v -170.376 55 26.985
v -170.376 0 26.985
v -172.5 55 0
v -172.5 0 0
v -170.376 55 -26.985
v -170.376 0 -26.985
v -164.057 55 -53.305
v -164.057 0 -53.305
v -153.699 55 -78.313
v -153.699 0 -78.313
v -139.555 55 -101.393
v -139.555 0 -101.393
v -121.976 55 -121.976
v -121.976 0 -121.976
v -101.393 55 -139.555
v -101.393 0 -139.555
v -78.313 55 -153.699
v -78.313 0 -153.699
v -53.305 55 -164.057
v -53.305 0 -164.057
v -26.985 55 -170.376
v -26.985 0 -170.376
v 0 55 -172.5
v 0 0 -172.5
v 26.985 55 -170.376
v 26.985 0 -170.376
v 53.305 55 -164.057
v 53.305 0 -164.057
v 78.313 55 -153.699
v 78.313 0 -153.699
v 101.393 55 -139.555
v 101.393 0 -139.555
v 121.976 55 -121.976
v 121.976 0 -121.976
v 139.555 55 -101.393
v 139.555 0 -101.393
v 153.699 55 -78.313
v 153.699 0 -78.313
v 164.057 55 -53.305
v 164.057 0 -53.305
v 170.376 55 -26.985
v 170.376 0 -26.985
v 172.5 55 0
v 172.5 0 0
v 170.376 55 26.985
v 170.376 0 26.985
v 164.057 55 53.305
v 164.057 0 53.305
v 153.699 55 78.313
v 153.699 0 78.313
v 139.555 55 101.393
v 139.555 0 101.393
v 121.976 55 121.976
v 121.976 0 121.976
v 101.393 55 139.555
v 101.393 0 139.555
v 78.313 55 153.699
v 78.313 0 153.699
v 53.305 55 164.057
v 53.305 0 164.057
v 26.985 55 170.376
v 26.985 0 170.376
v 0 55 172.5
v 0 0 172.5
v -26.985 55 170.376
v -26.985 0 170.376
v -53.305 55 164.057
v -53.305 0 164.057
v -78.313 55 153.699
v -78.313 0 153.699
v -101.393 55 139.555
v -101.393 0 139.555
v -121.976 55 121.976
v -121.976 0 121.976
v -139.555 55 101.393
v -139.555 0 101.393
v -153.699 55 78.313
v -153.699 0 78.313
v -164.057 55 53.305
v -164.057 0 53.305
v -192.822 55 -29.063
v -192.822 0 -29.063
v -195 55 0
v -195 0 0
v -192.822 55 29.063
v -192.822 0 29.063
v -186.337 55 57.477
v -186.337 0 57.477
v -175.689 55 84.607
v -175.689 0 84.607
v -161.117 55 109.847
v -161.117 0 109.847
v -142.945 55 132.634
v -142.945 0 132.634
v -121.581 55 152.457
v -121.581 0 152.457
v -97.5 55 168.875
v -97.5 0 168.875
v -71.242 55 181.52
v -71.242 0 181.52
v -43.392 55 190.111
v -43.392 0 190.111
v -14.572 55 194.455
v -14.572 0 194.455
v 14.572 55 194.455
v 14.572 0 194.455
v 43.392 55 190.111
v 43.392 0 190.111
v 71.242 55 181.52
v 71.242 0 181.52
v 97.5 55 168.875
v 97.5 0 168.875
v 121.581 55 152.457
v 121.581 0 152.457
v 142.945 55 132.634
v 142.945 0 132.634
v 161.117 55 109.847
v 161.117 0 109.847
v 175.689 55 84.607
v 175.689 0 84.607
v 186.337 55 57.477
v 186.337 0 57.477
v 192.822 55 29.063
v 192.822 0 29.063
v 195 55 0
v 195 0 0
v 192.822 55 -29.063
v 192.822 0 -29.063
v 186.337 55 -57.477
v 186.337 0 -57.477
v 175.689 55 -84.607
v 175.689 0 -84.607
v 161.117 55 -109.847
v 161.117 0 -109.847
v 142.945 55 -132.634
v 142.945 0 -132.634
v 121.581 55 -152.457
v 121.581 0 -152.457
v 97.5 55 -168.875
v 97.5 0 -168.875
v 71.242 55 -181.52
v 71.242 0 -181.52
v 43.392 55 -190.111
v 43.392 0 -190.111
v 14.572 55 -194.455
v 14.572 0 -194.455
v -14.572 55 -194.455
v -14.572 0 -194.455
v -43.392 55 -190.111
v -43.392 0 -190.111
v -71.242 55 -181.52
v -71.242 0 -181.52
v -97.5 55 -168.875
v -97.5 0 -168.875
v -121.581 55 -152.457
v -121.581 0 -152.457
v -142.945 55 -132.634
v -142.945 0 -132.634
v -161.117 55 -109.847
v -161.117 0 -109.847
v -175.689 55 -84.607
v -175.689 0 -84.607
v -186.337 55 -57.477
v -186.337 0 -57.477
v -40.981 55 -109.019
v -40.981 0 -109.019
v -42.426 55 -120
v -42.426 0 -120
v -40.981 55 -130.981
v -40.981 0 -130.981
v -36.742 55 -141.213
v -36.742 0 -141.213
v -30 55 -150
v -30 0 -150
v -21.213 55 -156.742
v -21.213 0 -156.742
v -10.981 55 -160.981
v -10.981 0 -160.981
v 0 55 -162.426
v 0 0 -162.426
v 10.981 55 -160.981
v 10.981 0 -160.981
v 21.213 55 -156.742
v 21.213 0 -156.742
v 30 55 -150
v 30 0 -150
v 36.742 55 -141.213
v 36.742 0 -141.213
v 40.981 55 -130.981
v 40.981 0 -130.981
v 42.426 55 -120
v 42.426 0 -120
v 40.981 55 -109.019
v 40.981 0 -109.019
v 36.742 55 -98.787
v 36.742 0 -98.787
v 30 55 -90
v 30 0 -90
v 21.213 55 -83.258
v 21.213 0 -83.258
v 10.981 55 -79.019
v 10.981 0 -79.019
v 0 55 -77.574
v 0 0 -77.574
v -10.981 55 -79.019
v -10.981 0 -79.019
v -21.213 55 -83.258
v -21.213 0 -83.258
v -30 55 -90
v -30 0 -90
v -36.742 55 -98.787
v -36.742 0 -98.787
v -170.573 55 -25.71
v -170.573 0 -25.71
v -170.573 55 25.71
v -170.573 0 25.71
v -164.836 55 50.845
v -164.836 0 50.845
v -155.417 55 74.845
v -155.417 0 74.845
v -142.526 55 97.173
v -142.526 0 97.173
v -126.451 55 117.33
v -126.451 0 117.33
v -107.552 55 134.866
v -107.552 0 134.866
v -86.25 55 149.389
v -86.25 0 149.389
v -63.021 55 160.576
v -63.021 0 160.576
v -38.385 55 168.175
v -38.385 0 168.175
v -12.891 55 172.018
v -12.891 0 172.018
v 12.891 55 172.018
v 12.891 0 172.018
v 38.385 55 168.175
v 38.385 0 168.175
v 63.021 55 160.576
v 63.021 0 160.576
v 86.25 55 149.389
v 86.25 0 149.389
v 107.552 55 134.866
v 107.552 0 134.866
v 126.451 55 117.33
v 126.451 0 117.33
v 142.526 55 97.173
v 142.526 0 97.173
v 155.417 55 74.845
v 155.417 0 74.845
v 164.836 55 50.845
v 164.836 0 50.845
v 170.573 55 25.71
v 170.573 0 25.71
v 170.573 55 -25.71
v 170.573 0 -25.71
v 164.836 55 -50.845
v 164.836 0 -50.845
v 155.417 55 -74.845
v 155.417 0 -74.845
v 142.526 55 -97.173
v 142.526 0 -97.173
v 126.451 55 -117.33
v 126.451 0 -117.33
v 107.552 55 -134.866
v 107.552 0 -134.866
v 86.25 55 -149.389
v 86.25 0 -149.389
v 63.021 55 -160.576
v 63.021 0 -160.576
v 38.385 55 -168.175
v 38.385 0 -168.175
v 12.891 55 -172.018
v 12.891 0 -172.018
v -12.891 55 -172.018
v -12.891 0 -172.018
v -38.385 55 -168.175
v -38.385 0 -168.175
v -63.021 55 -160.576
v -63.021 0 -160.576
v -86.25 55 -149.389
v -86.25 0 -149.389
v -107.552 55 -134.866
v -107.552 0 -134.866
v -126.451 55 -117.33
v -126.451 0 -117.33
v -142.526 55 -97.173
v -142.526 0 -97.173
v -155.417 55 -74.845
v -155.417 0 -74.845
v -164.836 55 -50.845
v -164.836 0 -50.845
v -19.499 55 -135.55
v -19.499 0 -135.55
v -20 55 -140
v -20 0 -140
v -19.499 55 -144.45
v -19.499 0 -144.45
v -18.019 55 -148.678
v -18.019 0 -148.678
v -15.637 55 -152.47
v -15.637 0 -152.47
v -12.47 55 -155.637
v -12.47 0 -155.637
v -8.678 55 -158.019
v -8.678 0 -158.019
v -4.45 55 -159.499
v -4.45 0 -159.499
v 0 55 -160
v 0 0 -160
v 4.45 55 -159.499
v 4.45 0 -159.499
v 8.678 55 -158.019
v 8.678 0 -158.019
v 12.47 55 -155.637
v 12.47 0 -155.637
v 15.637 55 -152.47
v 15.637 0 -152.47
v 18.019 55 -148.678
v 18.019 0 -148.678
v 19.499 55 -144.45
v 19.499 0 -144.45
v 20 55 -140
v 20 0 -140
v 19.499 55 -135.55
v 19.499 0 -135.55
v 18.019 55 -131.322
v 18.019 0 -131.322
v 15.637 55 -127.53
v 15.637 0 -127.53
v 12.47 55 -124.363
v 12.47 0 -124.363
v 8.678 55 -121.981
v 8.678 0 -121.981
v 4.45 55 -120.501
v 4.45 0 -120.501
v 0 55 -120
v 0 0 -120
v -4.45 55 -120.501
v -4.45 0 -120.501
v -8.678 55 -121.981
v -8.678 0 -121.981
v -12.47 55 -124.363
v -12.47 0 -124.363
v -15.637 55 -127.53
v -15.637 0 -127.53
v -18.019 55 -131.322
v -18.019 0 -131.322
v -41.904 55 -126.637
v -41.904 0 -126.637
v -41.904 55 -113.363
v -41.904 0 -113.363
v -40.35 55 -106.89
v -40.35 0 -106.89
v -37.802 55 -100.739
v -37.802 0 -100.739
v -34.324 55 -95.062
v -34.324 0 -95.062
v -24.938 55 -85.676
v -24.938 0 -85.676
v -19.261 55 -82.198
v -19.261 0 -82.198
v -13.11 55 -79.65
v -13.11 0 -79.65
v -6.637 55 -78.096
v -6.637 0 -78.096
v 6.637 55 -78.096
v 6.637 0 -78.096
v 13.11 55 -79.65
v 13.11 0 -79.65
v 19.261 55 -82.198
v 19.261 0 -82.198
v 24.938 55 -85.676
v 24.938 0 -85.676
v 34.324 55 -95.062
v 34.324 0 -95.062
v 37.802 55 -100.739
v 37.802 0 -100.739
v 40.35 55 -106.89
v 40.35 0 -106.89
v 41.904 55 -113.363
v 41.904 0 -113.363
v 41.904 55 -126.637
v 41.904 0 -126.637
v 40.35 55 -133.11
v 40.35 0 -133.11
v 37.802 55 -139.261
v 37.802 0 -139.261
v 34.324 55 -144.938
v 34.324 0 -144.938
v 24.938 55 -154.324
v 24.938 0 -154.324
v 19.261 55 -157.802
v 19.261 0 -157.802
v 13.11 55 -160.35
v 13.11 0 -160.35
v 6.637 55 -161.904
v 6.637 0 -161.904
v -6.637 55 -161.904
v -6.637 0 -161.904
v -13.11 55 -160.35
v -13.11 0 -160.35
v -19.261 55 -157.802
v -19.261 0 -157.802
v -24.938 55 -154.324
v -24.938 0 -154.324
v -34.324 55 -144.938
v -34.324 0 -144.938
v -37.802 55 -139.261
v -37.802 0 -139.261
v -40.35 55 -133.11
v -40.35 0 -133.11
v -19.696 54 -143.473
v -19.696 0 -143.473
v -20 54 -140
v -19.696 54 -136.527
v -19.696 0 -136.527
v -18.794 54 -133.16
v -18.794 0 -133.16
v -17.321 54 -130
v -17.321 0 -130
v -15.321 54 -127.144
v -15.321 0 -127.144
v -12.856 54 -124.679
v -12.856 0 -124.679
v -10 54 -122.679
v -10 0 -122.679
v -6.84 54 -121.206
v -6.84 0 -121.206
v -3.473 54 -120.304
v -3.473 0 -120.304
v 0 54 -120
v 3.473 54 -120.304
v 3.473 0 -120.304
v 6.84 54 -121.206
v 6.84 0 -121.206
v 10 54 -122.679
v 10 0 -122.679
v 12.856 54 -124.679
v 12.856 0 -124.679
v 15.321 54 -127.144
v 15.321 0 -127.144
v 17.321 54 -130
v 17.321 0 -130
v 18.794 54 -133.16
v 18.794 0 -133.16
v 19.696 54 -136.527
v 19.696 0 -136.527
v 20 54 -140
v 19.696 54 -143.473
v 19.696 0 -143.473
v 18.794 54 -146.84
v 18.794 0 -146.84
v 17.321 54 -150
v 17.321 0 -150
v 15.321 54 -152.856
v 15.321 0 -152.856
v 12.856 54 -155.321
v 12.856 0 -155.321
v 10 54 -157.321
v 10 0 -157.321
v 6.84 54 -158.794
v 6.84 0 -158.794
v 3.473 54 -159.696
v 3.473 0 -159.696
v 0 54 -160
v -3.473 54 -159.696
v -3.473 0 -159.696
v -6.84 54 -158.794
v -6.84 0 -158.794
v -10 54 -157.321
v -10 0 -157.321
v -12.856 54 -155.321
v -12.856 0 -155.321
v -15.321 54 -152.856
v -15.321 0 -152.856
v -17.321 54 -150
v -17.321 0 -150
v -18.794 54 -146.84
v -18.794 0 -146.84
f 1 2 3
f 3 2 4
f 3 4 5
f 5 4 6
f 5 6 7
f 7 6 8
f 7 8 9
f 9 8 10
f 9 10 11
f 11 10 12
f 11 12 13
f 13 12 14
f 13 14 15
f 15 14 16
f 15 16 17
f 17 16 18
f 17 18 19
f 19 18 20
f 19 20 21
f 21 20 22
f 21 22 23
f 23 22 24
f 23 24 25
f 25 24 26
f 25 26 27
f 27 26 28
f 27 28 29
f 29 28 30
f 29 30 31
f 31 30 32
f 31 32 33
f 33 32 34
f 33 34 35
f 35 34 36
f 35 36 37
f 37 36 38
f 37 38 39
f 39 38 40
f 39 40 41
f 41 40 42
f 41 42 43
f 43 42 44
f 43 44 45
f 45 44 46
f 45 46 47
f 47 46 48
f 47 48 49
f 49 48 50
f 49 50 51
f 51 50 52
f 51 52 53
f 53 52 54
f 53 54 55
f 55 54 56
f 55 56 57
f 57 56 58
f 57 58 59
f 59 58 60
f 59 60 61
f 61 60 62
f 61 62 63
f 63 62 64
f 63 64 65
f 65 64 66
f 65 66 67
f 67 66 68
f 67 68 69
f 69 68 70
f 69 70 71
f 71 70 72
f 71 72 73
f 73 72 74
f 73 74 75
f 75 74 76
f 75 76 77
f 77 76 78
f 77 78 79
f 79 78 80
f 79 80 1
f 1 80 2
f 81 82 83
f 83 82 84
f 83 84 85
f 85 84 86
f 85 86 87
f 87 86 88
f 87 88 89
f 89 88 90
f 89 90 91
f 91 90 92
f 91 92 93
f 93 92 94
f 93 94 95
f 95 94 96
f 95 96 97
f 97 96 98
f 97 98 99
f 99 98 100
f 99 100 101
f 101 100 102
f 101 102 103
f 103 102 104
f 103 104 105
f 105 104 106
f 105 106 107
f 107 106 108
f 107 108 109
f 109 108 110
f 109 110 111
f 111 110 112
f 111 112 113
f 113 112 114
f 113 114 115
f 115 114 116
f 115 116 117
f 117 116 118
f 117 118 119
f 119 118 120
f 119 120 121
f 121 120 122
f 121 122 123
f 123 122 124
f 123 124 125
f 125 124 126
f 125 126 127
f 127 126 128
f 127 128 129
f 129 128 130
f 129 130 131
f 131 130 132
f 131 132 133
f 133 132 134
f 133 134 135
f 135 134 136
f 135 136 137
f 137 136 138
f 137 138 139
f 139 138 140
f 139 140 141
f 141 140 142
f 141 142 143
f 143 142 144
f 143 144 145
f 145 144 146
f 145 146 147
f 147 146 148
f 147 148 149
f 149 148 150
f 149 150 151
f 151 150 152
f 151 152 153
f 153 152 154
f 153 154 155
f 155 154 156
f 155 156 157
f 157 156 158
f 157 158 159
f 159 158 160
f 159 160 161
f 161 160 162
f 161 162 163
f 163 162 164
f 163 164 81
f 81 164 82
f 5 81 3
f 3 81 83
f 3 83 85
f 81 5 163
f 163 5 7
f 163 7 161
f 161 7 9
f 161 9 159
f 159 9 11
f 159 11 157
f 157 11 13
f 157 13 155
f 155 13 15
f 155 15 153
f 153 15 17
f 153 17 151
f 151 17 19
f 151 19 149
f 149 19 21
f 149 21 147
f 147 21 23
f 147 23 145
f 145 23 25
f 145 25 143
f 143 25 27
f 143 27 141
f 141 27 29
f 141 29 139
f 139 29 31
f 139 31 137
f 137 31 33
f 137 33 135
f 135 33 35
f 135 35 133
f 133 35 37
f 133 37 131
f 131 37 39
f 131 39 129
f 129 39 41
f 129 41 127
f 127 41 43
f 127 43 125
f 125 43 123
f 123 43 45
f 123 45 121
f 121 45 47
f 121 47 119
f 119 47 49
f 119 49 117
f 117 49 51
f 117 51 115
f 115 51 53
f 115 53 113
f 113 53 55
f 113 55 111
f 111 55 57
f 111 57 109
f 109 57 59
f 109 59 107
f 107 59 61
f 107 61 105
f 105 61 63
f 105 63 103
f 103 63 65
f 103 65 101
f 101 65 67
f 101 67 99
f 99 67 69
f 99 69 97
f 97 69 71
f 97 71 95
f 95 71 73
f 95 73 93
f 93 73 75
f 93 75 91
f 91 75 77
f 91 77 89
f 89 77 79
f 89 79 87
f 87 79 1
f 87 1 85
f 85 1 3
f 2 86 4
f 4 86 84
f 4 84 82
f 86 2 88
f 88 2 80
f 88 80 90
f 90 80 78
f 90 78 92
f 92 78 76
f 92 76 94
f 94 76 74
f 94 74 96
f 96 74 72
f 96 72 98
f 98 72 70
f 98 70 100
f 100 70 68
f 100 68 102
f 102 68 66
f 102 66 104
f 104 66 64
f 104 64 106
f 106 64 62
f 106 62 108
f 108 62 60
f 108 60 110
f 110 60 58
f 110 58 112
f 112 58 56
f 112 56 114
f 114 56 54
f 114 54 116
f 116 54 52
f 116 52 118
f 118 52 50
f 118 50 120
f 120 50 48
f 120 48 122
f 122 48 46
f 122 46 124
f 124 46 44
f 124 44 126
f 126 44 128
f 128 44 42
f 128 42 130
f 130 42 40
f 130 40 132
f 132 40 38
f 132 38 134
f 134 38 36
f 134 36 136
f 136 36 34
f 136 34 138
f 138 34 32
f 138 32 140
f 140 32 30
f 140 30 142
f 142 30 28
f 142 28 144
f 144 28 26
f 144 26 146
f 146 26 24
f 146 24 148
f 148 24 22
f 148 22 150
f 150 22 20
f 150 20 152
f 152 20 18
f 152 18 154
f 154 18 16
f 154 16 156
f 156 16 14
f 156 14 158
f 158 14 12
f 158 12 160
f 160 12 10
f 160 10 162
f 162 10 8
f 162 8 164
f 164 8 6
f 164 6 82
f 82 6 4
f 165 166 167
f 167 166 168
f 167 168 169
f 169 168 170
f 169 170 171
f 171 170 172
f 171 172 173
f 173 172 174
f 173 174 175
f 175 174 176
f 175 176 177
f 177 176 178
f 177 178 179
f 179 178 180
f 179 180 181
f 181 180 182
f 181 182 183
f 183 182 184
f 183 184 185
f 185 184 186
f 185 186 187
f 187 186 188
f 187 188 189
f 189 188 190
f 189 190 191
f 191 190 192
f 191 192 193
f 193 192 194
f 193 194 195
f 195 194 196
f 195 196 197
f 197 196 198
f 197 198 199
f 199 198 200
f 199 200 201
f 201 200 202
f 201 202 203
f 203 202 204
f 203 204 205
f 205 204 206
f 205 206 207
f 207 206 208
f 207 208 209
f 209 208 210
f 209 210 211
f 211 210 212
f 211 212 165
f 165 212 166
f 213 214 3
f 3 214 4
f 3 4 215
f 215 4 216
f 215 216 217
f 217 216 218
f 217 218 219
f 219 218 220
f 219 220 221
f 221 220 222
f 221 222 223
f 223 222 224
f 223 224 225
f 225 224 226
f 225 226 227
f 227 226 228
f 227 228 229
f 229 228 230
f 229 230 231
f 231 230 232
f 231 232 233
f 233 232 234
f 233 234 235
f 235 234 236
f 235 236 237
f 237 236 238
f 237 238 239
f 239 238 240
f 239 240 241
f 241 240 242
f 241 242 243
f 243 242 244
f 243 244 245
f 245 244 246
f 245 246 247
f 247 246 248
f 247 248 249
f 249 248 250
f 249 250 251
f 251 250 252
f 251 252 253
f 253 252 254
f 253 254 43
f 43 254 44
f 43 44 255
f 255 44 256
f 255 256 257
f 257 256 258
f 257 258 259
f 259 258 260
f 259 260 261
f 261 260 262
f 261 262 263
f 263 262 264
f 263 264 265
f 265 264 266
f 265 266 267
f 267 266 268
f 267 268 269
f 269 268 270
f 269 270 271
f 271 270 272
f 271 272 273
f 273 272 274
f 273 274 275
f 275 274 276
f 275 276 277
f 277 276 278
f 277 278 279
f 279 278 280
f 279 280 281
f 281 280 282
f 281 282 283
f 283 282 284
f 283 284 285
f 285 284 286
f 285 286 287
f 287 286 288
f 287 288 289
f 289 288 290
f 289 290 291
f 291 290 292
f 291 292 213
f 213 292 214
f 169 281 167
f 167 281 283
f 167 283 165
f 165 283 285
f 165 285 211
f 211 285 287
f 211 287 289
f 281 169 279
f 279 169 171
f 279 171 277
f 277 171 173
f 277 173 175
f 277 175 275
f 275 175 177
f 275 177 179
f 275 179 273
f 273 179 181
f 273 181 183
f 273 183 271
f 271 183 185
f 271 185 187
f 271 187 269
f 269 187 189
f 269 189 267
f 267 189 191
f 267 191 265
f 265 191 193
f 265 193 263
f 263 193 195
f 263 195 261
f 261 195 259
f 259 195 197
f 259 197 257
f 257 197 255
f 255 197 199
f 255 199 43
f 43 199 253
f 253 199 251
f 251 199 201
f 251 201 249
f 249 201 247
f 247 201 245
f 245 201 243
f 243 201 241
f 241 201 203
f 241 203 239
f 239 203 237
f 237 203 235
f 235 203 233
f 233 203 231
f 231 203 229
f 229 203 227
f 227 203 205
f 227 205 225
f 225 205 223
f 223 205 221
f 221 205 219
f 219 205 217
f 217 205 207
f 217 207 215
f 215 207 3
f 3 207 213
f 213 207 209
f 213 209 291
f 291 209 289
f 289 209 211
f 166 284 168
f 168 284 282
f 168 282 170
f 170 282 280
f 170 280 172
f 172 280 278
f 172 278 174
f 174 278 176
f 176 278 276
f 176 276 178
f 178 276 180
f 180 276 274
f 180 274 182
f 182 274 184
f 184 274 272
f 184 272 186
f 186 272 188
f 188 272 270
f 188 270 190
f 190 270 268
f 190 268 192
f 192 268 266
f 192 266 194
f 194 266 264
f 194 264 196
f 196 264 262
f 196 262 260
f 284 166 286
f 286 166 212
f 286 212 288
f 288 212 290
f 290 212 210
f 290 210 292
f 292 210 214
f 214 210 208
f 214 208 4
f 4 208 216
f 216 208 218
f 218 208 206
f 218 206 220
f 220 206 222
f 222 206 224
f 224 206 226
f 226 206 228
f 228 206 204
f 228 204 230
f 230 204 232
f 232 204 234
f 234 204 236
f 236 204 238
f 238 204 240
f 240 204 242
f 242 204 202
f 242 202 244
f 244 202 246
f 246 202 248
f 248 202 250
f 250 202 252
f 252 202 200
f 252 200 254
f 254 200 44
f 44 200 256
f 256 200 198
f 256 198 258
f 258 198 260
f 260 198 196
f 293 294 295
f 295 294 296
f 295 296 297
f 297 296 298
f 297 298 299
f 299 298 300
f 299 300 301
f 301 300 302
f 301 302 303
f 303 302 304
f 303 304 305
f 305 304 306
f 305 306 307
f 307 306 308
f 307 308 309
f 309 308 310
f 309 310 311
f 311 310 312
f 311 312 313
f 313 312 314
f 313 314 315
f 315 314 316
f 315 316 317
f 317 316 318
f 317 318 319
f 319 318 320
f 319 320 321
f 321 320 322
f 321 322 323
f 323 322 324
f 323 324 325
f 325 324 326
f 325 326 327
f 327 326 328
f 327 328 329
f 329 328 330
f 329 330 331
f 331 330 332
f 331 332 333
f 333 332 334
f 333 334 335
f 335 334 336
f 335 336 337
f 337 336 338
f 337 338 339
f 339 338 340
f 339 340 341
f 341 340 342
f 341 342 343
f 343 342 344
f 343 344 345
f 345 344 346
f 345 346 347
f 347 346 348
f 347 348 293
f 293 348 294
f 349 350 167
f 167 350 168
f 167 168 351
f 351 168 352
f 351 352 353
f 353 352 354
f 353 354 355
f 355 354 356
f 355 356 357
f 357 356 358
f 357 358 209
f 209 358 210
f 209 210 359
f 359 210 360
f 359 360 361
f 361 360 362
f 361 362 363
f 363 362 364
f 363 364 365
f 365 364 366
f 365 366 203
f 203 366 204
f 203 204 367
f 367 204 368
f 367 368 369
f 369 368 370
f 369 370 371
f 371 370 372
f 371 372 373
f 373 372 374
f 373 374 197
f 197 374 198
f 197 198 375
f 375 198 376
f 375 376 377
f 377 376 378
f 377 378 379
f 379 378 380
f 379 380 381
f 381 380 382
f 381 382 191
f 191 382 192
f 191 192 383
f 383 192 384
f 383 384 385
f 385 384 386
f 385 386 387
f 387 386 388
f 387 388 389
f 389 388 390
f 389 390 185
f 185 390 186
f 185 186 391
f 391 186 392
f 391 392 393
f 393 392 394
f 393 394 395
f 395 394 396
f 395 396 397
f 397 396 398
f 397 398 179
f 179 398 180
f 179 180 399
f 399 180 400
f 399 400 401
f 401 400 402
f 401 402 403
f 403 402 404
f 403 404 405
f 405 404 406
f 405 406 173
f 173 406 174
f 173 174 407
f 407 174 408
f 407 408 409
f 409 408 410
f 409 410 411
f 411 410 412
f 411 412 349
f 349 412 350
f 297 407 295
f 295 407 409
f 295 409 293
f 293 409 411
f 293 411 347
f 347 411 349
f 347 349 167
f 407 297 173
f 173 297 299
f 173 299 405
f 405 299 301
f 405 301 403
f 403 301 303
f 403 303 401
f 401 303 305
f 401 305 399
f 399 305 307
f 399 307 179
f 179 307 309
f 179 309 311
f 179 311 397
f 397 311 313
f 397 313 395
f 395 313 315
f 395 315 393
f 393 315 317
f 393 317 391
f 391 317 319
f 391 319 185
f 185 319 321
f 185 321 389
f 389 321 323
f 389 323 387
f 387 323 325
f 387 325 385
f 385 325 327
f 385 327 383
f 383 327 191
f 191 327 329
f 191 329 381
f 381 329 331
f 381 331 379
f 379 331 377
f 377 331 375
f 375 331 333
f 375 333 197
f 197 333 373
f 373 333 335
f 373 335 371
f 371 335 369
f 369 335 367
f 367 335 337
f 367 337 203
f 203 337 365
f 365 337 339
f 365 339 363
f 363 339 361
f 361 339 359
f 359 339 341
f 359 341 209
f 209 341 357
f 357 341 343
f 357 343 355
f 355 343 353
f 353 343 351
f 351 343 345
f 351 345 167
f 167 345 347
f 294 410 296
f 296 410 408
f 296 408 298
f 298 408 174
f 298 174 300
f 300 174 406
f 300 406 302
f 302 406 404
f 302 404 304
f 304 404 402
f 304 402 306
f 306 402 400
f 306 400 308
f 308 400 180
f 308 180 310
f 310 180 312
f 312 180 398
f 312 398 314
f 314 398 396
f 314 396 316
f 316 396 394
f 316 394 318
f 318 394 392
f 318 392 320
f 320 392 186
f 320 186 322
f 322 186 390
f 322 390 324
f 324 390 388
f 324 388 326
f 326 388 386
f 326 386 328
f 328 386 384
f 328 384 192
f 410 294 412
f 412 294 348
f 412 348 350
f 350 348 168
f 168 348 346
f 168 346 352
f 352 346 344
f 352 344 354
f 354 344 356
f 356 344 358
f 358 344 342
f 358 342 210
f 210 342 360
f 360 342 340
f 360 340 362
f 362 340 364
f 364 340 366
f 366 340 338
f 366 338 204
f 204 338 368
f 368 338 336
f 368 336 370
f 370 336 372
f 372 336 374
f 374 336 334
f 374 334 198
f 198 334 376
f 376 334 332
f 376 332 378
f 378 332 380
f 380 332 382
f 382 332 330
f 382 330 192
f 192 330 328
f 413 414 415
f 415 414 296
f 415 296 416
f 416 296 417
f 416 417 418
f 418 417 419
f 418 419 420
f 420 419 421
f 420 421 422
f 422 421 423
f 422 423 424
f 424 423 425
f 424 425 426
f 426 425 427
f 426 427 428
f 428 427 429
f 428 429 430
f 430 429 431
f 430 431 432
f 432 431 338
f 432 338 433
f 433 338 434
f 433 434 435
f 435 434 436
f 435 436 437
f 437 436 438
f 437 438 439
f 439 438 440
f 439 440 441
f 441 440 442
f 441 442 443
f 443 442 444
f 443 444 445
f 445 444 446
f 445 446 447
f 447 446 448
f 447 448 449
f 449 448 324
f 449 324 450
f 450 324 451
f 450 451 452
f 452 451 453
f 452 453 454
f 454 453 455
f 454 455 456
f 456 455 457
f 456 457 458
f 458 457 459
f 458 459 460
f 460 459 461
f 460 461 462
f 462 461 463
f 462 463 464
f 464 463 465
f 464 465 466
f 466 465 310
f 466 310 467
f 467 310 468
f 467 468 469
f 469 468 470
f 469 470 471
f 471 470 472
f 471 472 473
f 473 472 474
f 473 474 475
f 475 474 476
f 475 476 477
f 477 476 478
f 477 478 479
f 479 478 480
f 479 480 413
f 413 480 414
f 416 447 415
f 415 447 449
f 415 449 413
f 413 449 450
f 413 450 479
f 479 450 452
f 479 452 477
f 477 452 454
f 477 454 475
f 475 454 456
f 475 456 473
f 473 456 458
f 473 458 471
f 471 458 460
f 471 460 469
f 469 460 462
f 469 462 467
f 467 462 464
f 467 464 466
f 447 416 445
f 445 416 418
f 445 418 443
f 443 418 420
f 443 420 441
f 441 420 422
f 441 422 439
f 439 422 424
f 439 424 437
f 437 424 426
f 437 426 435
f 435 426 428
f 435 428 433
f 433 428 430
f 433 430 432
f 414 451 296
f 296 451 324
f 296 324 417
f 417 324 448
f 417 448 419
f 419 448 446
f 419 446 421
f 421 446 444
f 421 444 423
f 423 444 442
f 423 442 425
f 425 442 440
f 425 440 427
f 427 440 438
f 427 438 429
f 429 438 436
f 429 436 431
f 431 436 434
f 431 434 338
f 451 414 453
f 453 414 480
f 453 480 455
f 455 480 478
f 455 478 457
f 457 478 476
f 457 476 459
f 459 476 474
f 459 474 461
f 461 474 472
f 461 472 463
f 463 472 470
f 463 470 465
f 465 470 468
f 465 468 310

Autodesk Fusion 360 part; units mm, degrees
sketch "Sketch2" plane through (0, 0, 0) normal (0, 1, 0) x (1, 0, 0)
  circle A0 centre (0, 0) radius 195
  circle A1 centre (0, 0) radius 172.5
  circle A2 centre (0, 120) radius 42.4264
  circle A3 centre (0, 140) radius 20
  dimension "d11" = 390
  dimension "d12" = 345
extrude "Extrude5" add sketch "Sketch2" along normal blind 55 contours A0 makes body 1
extrude "Extrude6" add sketch "Sketch2" along normal blind 55 separate body contours A1 makes body 2
extrude "Extrude7" add sketch "Sketch2" along normal blind 55 separate body contours A2 makes body 3
extrude "Extrude8" add sketch "Sketch2" along normal blind 54 separate body contours A3 makes body 4
